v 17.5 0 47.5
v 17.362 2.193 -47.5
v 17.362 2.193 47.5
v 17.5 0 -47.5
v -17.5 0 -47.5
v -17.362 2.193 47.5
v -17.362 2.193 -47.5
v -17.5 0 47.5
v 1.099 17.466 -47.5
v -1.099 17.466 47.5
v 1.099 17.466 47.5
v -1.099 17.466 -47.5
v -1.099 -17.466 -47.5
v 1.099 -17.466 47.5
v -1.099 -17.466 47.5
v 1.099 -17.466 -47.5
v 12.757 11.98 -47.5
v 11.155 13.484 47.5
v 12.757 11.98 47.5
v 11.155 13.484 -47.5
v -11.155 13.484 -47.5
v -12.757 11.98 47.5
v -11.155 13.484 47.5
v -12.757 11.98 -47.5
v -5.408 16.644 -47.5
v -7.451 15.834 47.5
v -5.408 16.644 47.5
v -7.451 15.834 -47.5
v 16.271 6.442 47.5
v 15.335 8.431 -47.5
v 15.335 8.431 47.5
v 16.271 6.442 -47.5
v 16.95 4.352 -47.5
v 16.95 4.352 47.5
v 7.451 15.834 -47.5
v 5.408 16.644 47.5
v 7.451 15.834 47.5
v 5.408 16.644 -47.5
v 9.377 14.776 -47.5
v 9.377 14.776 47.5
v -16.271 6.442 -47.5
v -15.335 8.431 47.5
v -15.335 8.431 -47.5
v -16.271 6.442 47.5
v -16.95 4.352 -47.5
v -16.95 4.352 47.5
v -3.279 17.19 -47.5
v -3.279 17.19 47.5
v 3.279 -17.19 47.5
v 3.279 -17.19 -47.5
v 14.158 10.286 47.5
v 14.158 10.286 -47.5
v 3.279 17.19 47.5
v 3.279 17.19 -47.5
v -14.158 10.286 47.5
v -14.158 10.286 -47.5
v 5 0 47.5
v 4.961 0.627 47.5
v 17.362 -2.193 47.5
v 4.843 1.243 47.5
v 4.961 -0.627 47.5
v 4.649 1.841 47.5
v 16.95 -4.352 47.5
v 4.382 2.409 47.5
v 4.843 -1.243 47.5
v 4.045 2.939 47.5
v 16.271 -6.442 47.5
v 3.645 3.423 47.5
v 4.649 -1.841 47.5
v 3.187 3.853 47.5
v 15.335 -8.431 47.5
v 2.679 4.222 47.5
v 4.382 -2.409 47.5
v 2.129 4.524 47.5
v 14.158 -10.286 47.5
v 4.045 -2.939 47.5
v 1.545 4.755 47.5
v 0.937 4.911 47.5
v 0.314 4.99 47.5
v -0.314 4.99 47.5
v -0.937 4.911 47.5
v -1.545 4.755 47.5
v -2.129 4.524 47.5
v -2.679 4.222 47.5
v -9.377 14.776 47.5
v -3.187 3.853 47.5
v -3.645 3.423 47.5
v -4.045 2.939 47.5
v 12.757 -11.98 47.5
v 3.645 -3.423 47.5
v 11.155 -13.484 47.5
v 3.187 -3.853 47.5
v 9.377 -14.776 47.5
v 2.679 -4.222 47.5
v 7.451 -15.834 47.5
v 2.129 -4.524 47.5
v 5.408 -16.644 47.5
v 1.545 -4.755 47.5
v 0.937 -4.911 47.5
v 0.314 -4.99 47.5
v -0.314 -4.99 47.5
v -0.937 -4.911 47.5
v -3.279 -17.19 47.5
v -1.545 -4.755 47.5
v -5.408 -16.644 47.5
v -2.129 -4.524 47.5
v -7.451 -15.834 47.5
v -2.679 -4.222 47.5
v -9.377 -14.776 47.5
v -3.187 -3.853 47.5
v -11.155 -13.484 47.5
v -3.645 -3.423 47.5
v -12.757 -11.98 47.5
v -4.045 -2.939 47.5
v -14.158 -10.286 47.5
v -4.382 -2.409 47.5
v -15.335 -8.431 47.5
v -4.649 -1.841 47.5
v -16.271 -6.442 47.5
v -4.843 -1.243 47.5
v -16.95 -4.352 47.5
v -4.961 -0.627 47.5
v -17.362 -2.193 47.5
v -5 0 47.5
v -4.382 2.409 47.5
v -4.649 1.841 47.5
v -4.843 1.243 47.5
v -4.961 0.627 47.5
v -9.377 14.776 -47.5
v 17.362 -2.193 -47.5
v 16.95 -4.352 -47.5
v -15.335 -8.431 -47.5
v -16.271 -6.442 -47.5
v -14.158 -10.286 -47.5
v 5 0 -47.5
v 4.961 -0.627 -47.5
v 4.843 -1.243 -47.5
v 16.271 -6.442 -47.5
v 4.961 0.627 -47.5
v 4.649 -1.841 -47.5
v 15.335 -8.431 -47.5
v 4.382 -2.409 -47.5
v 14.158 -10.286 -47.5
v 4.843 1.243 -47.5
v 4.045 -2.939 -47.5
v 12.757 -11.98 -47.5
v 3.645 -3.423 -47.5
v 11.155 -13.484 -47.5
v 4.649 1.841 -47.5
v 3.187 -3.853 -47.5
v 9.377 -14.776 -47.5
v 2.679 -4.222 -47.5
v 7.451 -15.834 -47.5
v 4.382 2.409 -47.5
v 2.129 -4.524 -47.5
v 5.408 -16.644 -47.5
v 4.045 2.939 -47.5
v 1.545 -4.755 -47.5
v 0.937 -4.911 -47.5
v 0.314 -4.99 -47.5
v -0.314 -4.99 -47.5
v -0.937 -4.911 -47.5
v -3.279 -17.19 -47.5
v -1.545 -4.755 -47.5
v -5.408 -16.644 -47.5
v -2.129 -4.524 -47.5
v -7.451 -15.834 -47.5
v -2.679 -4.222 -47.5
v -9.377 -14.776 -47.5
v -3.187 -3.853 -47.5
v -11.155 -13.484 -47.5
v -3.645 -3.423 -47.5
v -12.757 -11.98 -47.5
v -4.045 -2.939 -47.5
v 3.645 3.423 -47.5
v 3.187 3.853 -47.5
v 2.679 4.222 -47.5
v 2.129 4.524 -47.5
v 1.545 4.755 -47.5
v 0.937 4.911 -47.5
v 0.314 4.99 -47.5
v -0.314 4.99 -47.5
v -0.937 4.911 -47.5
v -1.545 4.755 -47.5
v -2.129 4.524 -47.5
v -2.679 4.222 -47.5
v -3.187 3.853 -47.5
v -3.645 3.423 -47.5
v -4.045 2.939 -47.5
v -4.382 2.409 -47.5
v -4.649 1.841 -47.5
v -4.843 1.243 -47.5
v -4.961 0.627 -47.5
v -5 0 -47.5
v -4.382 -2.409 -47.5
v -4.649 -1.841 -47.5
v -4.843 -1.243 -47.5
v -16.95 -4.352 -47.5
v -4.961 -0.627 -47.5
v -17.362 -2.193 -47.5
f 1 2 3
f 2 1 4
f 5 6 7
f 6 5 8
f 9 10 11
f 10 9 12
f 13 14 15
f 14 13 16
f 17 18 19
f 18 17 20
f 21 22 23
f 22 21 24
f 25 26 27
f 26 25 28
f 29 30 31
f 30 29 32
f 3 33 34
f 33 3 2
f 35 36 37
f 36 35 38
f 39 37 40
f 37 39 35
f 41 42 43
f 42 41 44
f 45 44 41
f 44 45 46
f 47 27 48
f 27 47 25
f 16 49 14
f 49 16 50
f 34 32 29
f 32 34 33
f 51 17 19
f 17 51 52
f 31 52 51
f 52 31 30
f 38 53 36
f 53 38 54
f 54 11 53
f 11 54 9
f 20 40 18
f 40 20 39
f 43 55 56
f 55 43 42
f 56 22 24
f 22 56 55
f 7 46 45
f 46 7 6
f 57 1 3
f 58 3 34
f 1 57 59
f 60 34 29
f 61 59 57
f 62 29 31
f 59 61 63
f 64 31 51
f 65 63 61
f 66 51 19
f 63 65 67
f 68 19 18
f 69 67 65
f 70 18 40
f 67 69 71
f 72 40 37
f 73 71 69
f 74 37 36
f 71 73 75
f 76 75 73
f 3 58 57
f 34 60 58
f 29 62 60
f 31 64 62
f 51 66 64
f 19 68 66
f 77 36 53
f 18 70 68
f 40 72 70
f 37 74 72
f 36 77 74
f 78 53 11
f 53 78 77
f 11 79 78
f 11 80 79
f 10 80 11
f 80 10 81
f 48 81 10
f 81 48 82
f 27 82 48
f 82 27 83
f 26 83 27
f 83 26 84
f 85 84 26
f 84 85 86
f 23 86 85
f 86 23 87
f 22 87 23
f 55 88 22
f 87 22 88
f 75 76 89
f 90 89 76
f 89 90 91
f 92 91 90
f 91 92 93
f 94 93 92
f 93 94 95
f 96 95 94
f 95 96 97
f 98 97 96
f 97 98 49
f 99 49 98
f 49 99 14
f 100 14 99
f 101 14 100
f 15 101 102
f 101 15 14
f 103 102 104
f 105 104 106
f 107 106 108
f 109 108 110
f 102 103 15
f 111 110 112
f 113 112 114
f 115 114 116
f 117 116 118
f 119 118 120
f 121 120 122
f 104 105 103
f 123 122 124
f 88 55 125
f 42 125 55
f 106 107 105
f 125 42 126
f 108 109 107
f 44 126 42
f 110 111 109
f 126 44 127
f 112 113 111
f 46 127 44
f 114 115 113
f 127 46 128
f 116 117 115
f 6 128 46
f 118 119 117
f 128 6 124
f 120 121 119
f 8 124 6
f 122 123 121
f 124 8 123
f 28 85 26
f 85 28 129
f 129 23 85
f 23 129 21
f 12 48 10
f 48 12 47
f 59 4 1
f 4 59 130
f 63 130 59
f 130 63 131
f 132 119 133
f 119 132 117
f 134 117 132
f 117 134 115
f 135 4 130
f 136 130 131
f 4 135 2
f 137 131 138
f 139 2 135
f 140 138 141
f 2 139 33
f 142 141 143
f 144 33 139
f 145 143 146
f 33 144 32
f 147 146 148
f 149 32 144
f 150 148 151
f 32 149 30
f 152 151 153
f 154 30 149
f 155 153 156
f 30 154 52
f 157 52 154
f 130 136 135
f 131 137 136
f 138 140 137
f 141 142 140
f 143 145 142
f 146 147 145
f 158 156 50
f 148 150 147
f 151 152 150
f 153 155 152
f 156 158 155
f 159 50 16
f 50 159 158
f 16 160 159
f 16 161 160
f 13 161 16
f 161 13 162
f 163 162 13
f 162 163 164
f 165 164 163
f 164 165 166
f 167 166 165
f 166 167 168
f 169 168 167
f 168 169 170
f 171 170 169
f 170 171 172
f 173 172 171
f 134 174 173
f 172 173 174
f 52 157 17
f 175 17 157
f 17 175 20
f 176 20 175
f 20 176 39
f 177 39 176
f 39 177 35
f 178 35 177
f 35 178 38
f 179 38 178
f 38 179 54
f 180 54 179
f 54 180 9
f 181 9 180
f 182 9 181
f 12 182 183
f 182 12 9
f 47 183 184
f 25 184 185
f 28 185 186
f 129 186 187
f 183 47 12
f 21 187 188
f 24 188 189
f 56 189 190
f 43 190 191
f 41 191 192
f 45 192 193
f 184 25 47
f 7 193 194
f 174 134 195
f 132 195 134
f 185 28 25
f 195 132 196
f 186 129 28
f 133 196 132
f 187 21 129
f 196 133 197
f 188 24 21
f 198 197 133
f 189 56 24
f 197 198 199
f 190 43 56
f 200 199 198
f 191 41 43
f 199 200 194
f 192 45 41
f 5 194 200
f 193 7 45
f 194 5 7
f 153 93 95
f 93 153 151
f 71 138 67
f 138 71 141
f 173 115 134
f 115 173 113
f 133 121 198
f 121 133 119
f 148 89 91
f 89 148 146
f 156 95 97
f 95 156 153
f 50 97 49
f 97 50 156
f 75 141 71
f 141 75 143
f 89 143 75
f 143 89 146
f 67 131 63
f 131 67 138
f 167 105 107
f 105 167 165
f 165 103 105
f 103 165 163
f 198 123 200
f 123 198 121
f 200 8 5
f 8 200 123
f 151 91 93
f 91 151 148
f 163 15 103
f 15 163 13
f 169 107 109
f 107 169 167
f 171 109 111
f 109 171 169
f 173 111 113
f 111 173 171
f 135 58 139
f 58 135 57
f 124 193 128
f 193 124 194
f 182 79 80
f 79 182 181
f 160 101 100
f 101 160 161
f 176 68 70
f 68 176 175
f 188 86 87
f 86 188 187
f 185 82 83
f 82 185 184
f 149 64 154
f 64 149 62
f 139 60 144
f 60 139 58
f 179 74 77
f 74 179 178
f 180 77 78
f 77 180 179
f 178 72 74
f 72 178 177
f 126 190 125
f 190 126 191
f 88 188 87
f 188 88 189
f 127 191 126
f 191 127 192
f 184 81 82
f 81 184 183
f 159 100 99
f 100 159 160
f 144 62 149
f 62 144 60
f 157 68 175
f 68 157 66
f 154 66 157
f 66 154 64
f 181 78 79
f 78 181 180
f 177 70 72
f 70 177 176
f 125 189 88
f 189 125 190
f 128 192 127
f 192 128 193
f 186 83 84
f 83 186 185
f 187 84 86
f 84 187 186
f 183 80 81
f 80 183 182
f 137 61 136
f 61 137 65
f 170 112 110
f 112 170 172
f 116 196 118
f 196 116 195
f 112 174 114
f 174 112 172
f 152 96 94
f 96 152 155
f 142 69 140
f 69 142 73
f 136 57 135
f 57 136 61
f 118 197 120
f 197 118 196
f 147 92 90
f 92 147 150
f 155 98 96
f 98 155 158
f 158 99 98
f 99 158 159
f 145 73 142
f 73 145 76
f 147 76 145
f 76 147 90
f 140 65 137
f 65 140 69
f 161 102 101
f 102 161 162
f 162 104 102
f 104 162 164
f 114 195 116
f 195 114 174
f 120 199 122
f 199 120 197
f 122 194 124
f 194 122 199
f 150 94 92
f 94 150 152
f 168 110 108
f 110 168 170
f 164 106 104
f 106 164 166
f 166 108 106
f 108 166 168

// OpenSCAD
$fn = 50;


difference() {
	union() {
		translate(v = [0, 0, -47.5000000000]) {
			cylinder(h = 95, r = 17.5000000000);
		}
	}
	union() {
		translate(v = [0, 0, -100.0000000000]) {
			cylinder(h = 200, r = 5);
		}
	}
}
